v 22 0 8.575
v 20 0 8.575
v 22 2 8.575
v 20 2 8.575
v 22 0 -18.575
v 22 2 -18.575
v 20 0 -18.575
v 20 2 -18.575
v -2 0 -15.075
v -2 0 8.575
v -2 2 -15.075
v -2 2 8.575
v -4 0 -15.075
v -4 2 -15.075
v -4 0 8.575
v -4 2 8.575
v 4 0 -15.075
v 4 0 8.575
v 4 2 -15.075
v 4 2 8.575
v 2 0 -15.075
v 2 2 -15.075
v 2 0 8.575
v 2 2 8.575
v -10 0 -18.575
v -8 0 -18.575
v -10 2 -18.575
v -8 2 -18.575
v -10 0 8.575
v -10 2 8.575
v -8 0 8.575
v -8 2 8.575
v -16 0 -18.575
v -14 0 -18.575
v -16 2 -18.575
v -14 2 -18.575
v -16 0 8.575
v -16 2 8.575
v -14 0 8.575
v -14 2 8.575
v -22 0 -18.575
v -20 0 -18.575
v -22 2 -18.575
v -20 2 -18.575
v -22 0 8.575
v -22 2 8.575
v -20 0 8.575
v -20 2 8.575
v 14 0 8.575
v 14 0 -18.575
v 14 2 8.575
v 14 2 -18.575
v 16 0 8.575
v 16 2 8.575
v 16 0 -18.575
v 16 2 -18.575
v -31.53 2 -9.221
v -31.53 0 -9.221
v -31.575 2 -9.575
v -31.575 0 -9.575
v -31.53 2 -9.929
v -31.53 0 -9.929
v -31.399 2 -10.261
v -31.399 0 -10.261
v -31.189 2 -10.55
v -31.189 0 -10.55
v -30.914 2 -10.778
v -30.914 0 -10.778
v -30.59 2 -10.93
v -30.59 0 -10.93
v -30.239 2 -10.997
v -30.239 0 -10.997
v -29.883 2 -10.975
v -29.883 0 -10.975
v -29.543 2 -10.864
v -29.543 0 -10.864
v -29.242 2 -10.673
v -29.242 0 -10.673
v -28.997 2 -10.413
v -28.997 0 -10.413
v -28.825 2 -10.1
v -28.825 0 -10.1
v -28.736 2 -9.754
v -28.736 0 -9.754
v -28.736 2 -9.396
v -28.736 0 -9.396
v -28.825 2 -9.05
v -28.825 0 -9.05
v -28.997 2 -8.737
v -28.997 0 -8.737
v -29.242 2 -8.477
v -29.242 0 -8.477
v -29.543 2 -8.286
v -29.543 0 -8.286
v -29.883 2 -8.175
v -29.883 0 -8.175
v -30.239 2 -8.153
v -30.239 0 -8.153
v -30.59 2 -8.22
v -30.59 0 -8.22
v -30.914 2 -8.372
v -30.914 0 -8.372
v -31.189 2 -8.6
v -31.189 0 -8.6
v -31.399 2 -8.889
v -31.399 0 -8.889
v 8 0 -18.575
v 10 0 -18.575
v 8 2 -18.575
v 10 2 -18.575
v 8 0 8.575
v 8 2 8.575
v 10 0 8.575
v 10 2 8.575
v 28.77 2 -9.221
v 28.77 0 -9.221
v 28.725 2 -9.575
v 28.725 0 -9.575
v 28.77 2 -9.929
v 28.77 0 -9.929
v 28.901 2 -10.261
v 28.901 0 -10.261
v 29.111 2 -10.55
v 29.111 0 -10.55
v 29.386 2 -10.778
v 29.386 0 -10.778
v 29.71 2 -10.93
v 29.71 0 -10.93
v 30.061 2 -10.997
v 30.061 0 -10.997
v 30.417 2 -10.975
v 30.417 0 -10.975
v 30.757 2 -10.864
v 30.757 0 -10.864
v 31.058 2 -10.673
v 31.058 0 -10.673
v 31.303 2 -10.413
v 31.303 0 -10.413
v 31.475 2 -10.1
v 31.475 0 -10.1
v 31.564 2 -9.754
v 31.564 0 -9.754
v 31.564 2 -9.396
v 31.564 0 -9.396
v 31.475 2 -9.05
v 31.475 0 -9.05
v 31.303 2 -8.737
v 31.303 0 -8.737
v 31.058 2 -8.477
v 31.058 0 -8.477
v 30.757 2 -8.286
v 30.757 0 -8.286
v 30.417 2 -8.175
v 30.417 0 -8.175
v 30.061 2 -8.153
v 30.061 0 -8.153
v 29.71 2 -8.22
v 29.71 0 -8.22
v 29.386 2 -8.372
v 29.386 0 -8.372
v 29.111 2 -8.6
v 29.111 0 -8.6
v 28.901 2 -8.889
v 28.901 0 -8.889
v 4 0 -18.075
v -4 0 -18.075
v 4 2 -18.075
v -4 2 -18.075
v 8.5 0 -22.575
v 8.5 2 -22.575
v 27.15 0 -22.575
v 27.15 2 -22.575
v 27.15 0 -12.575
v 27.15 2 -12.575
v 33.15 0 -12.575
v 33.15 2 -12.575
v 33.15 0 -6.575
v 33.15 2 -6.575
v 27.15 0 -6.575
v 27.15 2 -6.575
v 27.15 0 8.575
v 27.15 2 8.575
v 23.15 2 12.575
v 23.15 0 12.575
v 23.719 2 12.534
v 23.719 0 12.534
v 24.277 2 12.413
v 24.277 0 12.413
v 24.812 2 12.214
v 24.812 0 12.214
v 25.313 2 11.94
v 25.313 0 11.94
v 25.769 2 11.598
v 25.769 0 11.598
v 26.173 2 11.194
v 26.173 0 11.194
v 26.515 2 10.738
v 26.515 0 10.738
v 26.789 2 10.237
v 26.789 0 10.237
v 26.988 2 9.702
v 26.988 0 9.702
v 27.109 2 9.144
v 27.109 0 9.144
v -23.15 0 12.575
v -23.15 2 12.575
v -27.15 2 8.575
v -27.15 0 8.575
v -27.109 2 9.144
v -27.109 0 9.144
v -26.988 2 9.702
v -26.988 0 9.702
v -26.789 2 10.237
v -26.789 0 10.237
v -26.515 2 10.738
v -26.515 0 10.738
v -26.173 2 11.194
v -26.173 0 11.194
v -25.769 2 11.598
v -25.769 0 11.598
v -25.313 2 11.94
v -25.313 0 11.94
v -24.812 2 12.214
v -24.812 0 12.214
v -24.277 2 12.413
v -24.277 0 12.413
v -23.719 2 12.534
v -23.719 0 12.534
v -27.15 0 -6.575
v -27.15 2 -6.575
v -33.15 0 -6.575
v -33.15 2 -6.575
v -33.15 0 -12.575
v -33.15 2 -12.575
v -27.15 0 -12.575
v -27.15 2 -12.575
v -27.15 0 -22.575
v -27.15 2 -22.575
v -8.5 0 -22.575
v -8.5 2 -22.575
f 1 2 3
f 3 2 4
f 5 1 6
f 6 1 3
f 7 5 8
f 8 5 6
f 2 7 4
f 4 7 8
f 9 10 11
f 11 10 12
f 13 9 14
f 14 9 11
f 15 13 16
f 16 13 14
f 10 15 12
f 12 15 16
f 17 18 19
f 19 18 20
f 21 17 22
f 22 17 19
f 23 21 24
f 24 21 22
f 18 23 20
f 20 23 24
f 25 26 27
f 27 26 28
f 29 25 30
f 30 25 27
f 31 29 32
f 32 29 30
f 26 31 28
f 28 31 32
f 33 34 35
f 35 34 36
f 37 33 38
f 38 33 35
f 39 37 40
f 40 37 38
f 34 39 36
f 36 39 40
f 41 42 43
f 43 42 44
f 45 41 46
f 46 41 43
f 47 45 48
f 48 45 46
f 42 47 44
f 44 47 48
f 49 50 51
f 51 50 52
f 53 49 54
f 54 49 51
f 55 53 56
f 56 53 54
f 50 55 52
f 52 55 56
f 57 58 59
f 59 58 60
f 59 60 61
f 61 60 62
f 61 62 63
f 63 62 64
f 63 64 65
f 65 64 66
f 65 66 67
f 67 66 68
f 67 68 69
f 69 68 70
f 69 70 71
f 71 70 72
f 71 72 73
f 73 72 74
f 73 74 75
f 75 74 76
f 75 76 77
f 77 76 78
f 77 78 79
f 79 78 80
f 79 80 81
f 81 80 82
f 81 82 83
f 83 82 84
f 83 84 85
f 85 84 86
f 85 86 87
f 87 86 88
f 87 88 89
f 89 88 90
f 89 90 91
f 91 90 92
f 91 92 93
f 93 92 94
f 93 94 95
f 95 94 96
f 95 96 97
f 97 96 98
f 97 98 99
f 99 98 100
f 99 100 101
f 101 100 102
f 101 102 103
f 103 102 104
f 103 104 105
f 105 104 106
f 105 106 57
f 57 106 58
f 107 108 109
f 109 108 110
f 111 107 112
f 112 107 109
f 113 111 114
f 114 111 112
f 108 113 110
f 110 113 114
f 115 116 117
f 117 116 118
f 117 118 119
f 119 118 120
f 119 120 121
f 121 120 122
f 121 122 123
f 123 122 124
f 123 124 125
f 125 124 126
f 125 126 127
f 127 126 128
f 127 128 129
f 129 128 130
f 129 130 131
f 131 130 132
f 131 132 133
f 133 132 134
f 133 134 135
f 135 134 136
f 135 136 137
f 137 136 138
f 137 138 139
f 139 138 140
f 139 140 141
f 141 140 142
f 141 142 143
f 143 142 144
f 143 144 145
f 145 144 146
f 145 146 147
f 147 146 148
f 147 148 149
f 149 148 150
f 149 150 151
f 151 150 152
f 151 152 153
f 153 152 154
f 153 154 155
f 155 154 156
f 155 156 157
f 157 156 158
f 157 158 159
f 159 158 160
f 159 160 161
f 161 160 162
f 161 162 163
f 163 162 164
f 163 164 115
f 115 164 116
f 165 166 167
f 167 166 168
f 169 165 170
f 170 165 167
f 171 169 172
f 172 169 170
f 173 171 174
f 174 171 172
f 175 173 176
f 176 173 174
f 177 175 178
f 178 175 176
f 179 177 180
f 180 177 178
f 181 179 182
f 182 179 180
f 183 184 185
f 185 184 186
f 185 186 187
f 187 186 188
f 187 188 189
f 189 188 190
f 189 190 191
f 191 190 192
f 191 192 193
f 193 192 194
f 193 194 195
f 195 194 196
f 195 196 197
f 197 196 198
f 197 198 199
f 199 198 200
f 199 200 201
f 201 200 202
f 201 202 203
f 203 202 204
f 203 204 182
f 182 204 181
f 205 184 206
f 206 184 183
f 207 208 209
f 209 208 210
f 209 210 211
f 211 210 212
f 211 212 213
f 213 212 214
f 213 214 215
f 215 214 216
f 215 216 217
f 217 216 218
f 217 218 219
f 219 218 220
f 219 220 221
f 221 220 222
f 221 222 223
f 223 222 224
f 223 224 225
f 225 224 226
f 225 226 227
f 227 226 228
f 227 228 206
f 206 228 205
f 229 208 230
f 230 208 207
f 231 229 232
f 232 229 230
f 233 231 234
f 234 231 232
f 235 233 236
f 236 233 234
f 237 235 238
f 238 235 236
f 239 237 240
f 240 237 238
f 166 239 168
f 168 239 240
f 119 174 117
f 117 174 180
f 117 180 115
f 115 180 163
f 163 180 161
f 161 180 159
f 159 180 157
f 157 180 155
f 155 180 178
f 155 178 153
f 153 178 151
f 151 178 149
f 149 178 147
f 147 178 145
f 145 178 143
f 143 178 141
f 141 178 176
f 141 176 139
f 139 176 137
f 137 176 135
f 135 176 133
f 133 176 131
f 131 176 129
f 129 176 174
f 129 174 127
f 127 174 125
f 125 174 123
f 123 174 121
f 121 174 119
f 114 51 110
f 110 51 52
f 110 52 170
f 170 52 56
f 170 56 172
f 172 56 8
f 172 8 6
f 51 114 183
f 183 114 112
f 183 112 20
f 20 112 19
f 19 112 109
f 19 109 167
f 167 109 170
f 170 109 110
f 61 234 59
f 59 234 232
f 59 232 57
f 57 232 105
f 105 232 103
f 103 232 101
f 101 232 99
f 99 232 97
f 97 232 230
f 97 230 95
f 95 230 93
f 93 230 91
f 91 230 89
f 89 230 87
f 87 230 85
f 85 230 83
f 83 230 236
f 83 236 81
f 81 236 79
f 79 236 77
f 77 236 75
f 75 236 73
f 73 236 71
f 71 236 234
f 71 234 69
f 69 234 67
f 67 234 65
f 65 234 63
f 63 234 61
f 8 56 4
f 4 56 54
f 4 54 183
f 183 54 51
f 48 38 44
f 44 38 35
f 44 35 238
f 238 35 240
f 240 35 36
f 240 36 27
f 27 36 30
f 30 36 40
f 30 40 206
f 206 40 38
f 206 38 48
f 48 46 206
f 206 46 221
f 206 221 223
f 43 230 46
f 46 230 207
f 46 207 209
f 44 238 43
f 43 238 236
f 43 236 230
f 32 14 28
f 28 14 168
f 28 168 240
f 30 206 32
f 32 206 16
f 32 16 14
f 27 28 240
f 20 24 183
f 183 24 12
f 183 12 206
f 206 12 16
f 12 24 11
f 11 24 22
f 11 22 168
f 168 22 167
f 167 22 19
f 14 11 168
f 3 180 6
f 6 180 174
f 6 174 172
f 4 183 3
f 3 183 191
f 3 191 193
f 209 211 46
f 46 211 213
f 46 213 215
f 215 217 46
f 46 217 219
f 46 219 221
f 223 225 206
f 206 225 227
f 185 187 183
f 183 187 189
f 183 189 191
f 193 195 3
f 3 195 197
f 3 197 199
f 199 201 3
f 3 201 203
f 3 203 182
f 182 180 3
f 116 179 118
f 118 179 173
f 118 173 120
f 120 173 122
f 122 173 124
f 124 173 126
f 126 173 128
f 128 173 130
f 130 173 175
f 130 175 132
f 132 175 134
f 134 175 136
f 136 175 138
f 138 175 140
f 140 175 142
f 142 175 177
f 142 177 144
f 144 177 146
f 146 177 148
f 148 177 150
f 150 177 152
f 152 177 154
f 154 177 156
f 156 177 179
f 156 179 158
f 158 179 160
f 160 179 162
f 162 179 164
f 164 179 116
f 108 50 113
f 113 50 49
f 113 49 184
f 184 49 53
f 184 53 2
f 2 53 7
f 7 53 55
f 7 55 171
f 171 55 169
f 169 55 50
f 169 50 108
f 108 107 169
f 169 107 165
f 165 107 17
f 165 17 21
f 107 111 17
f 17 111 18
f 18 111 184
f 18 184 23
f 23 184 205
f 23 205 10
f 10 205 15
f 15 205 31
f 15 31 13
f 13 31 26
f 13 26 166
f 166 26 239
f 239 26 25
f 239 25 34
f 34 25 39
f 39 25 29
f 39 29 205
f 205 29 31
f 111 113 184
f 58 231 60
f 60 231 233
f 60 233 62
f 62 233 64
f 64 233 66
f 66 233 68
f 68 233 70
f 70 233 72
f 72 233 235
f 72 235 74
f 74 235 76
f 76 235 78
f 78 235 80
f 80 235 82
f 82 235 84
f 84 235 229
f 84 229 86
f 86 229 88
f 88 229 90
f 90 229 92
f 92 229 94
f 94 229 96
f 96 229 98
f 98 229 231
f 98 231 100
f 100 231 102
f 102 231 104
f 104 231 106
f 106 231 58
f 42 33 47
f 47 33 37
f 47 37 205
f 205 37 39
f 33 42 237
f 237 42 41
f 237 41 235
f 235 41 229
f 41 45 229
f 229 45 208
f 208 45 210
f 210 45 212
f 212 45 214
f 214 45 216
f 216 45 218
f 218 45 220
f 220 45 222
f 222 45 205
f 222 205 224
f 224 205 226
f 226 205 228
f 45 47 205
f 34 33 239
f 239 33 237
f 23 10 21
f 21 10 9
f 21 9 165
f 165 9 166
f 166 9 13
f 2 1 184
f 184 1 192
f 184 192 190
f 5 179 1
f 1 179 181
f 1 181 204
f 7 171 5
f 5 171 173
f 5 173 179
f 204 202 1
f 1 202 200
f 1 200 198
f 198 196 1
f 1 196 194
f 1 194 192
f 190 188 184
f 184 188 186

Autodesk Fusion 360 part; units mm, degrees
sketch "Sketch1" plane through (0, 0, 0) normal (0, 1, 0) x (1, 0, 0)
  line L0 (0, 12.575) -> (27.15, 12.575) construction
  line L1 (27.15, 12.575) -> (27.15, -8.575)
  line L2 (23.15, -12.575) -> (0, -12.575)
  line L3 (27.15, 12.575) -> (33.15, 12.575)
  line L4 (33.15, 12.575) -> (33.15, 6.575)
  line L5 (33.15, 6.575) -> (27.15, 6.575)
  line L6 (27.15, 6.575) -> (27.15, 12.575)
  line L7 (0, -12.575) -> (0, 12.575) construction
  circle A0 centre (30.15, 9.575) radius 1.425
  line L8 (27.15, 6.575) -> (33.15, 12.575) construction
  arc A1 (23.15, -12.575) -> (27.15, -8.575) centre (23.15, -8.575) ccw
  line L9 (-27.15, 12.575) -> (-27.15, -8.575)
  line L10 (-33.15, 6.575) -> (-27.15, 6.575)
  circle A2 centre (-30.15, 9.575) radius 1.425
  line L11 (-27.15, 12.575) -> (-33.15, 12.575)
  line L12 (-33.15, 12.575) -> (-33.15, 6.575)
  line L13 (-23.15, -12.575) -> (0, -12.575)
  arc A3 (-27.15, -8.575) -> (-23.15, -12.575) centre (-23.15, -8.575) ccw
  line L14 (-27.15, 0) -> (27.15, 0) construction
  line L15 (-27.15, 12.575) -> (-27.15, 22.575)
  line L16 (-27.15, 22.575) -> (27.15, 22.575)
  line L17 (27.15, 22.575) -> (27.15, 12.575)
  line L18 (-10, -8.575) -> (-10, 18.575)
  line L19 (-10, 18.575) -> (-8, 18.575)
  line L20 (-8, 18.575) -> (-8, -8.575)
  line L21 (-8, -8.575) -> (-10, -8.575)
  line L22 (-16, -8.575) -> (-16, 18.575)
  line L23 (-16, 18.575) -> (-14, 18.575)
  line L24 (-14, 18.575) -> (-14, -8.575)
  line L25 (-14, -8.575) -> (-16, -8.575)
  line L26 (-22, -8.575) -> (-22, 18.575)
  line L27 (-22, 18.575) -> (-20, 18.575)
  line L28 (-20, 18.575) -> (-20, -8.575)
  line L29 (-20, -8.575) -> (-22, -8.575)
  line L30 (-4, 18.075) -> (4, 18.075)
  line L31 (-4, 18.075) -> (-8.5, 22.575)
  line L32 (4, 18.075) -> (8.5, 22.575)
  line L33 (20, -8.575) -> (22, -8.575)
  line L34 (14, -8.575) -> (16, -8.575)
  line L35 (8, 18.575) -> (8, -8.575)
  line L36 (22, 18.575) -> (20, 18.575)
  line L37 (10, 18.575) -> (8, 18.575)
  line L38 (8, -8.575) -> (10, -8.575)
  line L39 (16, -8.575) -> (16, 18.575)
  line L40 (22, -8.575) -> (22, 18.575)
  line L41 (14, 18.575) -> (14, -8.575)
  line L42 (16, 18.575) -> (14, 18.575)
  line L43 (10, -8.575) -> (10, 18.575)
  line L44 (20, 18.575) -> (20, -8.575)
  line L45 (-4, 15.075) -> (-2, 15.075)
  line L46 (-2, 15.075) -> (-2, -8.575)
  line L47 (-2, -8.575) -> (-4, -8.575)
  line L48 (-4, -8.575) -> (-4, 15.075)
  line L49 (4, 15.075) -> (2, 15.075)
  line L50 (2, 15.075) -> (2, -8.575)
  line L51 (4, -8.575) -> (4, 15.075)
  line L52 (2, -8.575) -> (4, -8.575)
  point P0 (23.15, -8.575)
  point P1 (0, 18.075)
  dimension "d1" = 6
  dimension "d2" = 6
  dimension "d4" = 33.15
  dimension "d5" = 2.85
  dimension "d6" = 4
  dimension "d16" = 10
  dimension "d18" = 25.15
  dimension "d25" = 4.5
  dimension "d26" = 45
  dimension "d27" = 45
  dimension "d28" = 2
  dimension "d29" = 8
  dimension "d30" = 27.15
  dimension "d31" = 4
  dimension "d32" = 4
  dimension "d33" = 4
  dimension "d34" = 8
  dimension "d35" = 4
  dimension "d36" = 3
extrude "Extrude1" add sketch "Sketch1" along normal blind 2 contours L1 L3 L4 L5 L6 | L1 L2 L6 A1 L9 L13 A3 L15 L16 L17 L30 L31 L32 | L9 L10 L11 L12
